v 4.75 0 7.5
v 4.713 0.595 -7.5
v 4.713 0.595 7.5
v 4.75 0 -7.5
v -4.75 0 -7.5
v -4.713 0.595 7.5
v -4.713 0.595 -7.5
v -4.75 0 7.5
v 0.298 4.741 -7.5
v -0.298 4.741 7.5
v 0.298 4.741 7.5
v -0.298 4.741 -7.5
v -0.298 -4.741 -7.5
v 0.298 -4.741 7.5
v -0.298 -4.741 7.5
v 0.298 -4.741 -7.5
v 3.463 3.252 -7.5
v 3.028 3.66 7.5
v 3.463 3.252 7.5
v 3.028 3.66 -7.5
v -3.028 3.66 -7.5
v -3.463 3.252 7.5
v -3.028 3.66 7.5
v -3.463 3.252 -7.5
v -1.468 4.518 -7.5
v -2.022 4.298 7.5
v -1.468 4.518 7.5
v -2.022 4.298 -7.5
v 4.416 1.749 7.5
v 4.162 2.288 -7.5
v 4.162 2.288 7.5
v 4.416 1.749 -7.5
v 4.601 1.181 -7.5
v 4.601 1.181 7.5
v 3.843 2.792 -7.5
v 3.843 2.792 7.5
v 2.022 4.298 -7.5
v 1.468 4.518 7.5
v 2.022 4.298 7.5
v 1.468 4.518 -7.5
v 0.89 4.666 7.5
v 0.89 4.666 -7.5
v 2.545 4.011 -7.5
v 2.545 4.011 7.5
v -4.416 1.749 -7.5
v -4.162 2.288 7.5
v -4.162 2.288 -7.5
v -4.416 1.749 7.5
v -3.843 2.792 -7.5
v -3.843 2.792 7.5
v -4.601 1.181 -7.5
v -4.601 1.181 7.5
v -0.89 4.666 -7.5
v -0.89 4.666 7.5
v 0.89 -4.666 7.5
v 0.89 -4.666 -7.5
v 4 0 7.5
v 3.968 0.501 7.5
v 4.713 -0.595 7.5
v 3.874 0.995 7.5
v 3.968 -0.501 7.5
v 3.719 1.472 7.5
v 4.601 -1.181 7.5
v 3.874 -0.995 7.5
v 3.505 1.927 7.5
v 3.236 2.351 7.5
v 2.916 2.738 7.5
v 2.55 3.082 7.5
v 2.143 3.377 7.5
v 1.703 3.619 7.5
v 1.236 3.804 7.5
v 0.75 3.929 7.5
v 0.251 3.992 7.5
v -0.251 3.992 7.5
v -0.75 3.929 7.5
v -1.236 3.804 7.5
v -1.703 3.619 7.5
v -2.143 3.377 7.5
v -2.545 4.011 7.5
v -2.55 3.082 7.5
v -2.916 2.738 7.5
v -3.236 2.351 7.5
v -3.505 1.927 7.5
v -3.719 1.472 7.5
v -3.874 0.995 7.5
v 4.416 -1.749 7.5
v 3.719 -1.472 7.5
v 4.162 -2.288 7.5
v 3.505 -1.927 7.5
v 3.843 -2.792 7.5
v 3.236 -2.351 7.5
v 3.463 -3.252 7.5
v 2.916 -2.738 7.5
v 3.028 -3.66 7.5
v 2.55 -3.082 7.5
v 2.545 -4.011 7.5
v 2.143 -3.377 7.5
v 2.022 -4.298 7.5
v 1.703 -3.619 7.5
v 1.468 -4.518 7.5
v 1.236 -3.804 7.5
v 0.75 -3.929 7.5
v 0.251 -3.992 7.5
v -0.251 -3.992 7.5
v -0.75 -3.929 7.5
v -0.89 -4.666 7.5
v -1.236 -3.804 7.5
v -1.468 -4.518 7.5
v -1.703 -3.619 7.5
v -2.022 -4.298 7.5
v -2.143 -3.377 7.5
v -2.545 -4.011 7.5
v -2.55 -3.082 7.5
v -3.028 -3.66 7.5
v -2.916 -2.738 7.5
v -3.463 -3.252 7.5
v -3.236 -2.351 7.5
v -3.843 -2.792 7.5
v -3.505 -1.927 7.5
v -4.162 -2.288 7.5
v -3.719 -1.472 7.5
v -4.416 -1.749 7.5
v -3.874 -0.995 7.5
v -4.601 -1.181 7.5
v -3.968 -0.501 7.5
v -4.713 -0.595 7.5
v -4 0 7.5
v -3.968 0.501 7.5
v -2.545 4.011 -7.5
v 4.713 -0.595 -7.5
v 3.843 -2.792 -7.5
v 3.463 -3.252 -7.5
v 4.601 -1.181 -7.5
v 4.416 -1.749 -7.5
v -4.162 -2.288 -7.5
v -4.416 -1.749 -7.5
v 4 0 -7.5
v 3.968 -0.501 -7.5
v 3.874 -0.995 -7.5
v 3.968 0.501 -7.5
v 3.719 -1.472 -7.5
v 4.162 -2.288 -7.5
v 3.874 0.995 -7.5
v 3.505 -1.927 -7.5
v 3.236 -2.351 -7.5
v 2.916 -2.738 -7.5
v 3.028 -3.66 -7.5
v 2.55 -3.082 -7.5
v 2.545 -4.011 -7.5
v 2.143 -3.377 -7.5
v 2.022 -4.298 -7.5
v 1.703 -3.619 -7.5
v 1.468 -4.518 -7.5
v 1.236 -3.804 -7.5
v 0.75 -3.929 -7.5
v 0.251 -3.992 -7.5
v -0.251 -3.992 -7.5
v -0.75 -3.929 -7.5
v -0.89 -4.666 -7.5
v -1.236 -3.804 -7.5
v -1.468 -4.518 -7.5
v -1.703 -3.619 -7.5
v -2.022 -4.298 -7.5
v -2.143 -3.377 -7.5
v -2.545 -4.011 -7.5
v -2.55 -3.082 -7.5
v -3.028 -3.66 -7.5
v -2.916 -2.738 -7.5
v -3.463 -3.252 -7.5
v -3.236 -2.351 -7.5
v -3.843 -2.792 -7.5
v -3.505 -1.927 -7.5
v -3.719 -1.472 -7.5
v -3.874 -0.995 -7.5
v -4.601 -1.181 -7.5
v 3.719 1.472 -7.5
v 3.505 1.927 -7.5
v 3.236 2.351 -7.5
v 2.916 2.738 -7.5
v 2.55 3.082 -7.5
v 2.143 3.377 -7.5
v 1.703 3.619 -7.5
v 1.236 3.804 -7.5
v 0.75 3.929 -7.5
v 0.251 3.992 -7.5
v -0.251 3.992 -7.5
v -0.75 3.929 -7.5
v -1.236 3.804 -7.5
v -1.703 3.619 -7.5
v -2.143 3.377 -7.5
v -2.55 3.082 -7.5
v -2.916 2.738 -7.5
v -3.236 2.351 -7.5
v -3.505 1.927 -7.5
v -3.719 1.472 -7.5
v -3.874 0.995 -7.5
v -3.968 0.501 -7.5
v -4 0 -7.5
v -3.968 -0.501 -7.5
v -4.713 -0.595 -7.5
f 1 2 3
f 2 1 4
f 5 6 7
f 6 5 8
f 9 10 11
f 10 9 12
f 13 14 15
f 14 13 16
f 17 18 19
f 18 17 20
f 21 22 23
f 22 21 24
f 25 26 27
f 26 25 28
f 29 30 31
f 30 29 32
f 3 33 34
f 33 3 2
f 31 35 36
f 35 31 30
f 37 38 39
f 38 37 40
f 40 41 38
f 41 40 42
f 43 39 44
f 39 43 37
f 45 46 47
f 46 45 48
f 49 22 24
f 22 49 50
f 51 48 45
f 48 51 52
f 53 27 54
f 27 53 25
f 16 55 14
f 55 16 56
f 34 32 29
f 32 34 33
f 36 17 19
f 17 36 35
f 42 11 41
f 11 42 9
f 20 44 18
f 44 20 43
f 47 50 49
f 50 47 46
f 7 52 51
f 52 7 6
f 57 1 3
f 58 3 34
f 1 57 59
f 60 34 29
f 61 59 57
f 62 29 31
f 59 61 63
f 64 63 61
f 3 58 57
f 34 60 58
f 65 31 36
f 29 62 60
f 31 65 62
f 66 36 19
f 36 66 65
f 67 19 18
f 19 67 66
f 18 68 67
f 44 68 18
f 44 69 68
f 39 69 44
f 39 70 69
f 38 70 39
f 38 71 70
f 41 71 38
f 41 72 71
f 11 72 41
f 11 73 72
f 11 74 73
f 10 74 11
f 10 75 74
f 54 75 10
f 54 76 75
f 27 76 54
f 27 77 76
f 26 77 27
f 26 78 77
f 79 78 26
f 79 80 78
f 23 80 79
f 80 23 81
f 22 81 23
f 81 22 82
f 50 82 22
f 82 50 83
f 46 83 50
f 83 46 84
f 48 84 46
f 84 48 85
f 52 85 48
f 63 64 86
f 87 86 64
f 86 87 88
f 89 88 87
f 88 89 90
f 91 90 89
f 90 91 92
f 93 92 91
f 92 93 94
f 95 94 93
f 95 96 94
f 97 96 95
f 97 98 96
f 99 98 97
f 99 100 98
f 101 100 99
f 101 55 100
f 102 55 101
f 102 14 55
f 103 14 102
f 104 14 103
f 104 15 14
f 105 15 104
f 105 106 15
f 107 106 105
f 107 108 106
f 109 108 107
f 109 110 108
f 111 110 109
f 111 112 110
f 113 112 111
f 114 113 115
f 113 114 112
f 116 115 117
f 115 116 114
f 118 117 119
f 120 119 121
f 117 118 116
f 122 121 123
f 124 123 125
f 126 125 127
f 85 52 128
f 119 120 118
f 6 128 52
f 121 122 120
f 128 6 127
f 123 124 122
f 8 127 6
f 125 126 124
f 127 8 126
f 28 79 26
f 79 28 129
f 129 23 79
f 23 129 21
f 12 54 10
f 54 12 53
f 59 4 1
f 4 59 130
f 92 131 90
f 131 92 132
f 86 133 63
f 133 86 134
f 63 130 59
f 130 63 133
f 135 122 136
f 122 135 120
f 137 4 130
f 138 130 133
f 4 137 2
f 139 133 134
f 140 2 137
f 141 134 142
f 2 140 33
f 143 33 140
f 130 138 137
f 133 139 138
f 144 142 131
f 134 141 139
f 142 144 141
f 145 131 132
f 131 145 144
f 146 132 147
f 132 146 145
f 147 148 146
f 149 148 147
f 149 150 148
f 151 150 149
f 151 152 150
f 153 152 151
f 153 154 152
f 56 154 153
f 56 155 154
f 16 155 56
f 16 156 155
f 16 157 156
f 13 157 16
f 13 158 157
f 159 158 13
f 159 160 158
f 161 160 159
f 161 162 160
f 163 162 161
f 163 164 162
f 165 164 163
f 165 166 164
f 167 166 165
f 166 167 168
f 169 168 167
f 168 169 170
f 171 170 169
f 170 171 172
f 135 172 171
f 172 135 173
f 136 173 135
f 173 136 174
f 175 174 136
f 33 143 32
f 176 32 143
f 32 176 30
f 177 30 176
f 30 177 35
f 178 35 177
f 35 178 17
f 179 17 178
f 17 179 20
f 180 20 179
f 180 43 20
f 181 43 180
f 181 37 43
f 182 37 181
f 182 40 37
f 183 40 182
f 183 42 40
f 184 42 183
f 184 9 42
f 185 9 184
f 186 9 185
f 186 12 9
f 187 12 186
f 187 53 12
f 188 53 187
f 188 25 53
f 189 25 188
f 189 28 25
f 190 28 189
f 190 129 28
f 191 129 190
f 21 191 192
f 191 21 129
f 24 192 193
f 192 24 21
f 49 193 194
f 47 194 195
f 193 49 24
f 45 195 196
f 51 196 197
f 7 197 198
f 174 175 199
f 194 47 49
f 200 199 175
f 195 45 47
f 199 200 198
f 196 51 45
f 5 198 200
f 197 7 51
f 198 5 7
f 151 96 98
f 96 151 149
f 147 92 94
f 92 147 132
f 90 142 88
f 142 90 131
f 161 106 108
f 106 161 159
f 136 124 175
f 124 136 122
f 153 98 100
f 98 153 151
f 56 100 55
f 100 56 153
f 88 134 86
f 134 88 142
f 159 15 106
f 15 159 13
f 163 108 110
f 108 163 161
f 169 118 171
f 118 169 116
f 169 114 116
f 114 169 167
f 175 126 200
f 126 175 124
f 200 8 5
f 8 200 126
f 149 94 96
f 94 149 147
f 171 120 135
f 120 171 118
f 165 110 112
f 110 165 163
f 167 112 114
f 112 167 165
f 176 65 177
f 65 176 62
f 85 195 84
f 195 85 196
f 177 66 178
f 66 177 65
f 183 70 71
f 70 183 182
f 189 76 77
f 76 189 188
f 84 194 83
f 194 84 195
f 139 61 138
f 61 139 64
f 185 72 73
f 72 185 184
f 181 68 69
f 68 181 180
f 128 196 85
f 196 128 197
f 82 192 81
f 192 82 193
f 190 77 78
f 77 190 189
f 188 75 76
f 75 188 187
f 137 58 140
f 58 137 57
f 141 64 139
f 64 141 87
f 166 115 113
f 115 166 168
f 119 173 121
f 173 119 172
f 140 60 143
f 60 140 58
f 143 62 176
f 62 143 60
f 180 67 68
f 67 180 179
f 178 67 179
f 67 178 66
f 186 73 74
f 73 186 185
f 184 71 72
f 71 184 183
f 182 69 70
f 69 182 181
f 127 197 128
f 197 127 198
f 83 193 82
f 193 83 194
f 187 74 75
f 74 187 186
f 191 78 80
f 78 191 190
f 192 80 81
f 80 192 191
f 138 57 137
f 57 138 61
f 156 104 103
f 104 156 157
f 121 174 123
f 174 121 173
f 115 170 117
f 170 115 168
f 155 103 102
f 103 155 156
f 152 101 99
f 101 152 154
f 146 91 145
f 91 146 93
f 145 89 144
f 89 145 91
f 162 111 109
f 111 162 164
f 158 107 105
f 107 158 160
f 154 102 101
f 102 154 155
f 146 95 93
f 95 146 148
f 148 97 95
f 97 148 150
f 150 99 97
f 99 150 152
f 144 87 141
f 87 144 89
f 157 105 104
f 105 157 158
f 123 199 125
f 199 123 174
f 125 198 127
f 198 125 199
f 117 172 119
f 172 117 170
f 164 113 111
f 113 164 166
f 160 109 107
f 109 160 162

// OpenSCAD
$fn = 50;


difference() {
	union() {
		translate(v = [0, 0, -7.5000000000]) {
			cylinder(h = 15, r = 4.7500000000);
		}
	}
	union() {
		translate(v = [0, 0, -100.0000000000]) {
			cylinder(h = 200, r = 4.0000000000);
		}
	}
}
